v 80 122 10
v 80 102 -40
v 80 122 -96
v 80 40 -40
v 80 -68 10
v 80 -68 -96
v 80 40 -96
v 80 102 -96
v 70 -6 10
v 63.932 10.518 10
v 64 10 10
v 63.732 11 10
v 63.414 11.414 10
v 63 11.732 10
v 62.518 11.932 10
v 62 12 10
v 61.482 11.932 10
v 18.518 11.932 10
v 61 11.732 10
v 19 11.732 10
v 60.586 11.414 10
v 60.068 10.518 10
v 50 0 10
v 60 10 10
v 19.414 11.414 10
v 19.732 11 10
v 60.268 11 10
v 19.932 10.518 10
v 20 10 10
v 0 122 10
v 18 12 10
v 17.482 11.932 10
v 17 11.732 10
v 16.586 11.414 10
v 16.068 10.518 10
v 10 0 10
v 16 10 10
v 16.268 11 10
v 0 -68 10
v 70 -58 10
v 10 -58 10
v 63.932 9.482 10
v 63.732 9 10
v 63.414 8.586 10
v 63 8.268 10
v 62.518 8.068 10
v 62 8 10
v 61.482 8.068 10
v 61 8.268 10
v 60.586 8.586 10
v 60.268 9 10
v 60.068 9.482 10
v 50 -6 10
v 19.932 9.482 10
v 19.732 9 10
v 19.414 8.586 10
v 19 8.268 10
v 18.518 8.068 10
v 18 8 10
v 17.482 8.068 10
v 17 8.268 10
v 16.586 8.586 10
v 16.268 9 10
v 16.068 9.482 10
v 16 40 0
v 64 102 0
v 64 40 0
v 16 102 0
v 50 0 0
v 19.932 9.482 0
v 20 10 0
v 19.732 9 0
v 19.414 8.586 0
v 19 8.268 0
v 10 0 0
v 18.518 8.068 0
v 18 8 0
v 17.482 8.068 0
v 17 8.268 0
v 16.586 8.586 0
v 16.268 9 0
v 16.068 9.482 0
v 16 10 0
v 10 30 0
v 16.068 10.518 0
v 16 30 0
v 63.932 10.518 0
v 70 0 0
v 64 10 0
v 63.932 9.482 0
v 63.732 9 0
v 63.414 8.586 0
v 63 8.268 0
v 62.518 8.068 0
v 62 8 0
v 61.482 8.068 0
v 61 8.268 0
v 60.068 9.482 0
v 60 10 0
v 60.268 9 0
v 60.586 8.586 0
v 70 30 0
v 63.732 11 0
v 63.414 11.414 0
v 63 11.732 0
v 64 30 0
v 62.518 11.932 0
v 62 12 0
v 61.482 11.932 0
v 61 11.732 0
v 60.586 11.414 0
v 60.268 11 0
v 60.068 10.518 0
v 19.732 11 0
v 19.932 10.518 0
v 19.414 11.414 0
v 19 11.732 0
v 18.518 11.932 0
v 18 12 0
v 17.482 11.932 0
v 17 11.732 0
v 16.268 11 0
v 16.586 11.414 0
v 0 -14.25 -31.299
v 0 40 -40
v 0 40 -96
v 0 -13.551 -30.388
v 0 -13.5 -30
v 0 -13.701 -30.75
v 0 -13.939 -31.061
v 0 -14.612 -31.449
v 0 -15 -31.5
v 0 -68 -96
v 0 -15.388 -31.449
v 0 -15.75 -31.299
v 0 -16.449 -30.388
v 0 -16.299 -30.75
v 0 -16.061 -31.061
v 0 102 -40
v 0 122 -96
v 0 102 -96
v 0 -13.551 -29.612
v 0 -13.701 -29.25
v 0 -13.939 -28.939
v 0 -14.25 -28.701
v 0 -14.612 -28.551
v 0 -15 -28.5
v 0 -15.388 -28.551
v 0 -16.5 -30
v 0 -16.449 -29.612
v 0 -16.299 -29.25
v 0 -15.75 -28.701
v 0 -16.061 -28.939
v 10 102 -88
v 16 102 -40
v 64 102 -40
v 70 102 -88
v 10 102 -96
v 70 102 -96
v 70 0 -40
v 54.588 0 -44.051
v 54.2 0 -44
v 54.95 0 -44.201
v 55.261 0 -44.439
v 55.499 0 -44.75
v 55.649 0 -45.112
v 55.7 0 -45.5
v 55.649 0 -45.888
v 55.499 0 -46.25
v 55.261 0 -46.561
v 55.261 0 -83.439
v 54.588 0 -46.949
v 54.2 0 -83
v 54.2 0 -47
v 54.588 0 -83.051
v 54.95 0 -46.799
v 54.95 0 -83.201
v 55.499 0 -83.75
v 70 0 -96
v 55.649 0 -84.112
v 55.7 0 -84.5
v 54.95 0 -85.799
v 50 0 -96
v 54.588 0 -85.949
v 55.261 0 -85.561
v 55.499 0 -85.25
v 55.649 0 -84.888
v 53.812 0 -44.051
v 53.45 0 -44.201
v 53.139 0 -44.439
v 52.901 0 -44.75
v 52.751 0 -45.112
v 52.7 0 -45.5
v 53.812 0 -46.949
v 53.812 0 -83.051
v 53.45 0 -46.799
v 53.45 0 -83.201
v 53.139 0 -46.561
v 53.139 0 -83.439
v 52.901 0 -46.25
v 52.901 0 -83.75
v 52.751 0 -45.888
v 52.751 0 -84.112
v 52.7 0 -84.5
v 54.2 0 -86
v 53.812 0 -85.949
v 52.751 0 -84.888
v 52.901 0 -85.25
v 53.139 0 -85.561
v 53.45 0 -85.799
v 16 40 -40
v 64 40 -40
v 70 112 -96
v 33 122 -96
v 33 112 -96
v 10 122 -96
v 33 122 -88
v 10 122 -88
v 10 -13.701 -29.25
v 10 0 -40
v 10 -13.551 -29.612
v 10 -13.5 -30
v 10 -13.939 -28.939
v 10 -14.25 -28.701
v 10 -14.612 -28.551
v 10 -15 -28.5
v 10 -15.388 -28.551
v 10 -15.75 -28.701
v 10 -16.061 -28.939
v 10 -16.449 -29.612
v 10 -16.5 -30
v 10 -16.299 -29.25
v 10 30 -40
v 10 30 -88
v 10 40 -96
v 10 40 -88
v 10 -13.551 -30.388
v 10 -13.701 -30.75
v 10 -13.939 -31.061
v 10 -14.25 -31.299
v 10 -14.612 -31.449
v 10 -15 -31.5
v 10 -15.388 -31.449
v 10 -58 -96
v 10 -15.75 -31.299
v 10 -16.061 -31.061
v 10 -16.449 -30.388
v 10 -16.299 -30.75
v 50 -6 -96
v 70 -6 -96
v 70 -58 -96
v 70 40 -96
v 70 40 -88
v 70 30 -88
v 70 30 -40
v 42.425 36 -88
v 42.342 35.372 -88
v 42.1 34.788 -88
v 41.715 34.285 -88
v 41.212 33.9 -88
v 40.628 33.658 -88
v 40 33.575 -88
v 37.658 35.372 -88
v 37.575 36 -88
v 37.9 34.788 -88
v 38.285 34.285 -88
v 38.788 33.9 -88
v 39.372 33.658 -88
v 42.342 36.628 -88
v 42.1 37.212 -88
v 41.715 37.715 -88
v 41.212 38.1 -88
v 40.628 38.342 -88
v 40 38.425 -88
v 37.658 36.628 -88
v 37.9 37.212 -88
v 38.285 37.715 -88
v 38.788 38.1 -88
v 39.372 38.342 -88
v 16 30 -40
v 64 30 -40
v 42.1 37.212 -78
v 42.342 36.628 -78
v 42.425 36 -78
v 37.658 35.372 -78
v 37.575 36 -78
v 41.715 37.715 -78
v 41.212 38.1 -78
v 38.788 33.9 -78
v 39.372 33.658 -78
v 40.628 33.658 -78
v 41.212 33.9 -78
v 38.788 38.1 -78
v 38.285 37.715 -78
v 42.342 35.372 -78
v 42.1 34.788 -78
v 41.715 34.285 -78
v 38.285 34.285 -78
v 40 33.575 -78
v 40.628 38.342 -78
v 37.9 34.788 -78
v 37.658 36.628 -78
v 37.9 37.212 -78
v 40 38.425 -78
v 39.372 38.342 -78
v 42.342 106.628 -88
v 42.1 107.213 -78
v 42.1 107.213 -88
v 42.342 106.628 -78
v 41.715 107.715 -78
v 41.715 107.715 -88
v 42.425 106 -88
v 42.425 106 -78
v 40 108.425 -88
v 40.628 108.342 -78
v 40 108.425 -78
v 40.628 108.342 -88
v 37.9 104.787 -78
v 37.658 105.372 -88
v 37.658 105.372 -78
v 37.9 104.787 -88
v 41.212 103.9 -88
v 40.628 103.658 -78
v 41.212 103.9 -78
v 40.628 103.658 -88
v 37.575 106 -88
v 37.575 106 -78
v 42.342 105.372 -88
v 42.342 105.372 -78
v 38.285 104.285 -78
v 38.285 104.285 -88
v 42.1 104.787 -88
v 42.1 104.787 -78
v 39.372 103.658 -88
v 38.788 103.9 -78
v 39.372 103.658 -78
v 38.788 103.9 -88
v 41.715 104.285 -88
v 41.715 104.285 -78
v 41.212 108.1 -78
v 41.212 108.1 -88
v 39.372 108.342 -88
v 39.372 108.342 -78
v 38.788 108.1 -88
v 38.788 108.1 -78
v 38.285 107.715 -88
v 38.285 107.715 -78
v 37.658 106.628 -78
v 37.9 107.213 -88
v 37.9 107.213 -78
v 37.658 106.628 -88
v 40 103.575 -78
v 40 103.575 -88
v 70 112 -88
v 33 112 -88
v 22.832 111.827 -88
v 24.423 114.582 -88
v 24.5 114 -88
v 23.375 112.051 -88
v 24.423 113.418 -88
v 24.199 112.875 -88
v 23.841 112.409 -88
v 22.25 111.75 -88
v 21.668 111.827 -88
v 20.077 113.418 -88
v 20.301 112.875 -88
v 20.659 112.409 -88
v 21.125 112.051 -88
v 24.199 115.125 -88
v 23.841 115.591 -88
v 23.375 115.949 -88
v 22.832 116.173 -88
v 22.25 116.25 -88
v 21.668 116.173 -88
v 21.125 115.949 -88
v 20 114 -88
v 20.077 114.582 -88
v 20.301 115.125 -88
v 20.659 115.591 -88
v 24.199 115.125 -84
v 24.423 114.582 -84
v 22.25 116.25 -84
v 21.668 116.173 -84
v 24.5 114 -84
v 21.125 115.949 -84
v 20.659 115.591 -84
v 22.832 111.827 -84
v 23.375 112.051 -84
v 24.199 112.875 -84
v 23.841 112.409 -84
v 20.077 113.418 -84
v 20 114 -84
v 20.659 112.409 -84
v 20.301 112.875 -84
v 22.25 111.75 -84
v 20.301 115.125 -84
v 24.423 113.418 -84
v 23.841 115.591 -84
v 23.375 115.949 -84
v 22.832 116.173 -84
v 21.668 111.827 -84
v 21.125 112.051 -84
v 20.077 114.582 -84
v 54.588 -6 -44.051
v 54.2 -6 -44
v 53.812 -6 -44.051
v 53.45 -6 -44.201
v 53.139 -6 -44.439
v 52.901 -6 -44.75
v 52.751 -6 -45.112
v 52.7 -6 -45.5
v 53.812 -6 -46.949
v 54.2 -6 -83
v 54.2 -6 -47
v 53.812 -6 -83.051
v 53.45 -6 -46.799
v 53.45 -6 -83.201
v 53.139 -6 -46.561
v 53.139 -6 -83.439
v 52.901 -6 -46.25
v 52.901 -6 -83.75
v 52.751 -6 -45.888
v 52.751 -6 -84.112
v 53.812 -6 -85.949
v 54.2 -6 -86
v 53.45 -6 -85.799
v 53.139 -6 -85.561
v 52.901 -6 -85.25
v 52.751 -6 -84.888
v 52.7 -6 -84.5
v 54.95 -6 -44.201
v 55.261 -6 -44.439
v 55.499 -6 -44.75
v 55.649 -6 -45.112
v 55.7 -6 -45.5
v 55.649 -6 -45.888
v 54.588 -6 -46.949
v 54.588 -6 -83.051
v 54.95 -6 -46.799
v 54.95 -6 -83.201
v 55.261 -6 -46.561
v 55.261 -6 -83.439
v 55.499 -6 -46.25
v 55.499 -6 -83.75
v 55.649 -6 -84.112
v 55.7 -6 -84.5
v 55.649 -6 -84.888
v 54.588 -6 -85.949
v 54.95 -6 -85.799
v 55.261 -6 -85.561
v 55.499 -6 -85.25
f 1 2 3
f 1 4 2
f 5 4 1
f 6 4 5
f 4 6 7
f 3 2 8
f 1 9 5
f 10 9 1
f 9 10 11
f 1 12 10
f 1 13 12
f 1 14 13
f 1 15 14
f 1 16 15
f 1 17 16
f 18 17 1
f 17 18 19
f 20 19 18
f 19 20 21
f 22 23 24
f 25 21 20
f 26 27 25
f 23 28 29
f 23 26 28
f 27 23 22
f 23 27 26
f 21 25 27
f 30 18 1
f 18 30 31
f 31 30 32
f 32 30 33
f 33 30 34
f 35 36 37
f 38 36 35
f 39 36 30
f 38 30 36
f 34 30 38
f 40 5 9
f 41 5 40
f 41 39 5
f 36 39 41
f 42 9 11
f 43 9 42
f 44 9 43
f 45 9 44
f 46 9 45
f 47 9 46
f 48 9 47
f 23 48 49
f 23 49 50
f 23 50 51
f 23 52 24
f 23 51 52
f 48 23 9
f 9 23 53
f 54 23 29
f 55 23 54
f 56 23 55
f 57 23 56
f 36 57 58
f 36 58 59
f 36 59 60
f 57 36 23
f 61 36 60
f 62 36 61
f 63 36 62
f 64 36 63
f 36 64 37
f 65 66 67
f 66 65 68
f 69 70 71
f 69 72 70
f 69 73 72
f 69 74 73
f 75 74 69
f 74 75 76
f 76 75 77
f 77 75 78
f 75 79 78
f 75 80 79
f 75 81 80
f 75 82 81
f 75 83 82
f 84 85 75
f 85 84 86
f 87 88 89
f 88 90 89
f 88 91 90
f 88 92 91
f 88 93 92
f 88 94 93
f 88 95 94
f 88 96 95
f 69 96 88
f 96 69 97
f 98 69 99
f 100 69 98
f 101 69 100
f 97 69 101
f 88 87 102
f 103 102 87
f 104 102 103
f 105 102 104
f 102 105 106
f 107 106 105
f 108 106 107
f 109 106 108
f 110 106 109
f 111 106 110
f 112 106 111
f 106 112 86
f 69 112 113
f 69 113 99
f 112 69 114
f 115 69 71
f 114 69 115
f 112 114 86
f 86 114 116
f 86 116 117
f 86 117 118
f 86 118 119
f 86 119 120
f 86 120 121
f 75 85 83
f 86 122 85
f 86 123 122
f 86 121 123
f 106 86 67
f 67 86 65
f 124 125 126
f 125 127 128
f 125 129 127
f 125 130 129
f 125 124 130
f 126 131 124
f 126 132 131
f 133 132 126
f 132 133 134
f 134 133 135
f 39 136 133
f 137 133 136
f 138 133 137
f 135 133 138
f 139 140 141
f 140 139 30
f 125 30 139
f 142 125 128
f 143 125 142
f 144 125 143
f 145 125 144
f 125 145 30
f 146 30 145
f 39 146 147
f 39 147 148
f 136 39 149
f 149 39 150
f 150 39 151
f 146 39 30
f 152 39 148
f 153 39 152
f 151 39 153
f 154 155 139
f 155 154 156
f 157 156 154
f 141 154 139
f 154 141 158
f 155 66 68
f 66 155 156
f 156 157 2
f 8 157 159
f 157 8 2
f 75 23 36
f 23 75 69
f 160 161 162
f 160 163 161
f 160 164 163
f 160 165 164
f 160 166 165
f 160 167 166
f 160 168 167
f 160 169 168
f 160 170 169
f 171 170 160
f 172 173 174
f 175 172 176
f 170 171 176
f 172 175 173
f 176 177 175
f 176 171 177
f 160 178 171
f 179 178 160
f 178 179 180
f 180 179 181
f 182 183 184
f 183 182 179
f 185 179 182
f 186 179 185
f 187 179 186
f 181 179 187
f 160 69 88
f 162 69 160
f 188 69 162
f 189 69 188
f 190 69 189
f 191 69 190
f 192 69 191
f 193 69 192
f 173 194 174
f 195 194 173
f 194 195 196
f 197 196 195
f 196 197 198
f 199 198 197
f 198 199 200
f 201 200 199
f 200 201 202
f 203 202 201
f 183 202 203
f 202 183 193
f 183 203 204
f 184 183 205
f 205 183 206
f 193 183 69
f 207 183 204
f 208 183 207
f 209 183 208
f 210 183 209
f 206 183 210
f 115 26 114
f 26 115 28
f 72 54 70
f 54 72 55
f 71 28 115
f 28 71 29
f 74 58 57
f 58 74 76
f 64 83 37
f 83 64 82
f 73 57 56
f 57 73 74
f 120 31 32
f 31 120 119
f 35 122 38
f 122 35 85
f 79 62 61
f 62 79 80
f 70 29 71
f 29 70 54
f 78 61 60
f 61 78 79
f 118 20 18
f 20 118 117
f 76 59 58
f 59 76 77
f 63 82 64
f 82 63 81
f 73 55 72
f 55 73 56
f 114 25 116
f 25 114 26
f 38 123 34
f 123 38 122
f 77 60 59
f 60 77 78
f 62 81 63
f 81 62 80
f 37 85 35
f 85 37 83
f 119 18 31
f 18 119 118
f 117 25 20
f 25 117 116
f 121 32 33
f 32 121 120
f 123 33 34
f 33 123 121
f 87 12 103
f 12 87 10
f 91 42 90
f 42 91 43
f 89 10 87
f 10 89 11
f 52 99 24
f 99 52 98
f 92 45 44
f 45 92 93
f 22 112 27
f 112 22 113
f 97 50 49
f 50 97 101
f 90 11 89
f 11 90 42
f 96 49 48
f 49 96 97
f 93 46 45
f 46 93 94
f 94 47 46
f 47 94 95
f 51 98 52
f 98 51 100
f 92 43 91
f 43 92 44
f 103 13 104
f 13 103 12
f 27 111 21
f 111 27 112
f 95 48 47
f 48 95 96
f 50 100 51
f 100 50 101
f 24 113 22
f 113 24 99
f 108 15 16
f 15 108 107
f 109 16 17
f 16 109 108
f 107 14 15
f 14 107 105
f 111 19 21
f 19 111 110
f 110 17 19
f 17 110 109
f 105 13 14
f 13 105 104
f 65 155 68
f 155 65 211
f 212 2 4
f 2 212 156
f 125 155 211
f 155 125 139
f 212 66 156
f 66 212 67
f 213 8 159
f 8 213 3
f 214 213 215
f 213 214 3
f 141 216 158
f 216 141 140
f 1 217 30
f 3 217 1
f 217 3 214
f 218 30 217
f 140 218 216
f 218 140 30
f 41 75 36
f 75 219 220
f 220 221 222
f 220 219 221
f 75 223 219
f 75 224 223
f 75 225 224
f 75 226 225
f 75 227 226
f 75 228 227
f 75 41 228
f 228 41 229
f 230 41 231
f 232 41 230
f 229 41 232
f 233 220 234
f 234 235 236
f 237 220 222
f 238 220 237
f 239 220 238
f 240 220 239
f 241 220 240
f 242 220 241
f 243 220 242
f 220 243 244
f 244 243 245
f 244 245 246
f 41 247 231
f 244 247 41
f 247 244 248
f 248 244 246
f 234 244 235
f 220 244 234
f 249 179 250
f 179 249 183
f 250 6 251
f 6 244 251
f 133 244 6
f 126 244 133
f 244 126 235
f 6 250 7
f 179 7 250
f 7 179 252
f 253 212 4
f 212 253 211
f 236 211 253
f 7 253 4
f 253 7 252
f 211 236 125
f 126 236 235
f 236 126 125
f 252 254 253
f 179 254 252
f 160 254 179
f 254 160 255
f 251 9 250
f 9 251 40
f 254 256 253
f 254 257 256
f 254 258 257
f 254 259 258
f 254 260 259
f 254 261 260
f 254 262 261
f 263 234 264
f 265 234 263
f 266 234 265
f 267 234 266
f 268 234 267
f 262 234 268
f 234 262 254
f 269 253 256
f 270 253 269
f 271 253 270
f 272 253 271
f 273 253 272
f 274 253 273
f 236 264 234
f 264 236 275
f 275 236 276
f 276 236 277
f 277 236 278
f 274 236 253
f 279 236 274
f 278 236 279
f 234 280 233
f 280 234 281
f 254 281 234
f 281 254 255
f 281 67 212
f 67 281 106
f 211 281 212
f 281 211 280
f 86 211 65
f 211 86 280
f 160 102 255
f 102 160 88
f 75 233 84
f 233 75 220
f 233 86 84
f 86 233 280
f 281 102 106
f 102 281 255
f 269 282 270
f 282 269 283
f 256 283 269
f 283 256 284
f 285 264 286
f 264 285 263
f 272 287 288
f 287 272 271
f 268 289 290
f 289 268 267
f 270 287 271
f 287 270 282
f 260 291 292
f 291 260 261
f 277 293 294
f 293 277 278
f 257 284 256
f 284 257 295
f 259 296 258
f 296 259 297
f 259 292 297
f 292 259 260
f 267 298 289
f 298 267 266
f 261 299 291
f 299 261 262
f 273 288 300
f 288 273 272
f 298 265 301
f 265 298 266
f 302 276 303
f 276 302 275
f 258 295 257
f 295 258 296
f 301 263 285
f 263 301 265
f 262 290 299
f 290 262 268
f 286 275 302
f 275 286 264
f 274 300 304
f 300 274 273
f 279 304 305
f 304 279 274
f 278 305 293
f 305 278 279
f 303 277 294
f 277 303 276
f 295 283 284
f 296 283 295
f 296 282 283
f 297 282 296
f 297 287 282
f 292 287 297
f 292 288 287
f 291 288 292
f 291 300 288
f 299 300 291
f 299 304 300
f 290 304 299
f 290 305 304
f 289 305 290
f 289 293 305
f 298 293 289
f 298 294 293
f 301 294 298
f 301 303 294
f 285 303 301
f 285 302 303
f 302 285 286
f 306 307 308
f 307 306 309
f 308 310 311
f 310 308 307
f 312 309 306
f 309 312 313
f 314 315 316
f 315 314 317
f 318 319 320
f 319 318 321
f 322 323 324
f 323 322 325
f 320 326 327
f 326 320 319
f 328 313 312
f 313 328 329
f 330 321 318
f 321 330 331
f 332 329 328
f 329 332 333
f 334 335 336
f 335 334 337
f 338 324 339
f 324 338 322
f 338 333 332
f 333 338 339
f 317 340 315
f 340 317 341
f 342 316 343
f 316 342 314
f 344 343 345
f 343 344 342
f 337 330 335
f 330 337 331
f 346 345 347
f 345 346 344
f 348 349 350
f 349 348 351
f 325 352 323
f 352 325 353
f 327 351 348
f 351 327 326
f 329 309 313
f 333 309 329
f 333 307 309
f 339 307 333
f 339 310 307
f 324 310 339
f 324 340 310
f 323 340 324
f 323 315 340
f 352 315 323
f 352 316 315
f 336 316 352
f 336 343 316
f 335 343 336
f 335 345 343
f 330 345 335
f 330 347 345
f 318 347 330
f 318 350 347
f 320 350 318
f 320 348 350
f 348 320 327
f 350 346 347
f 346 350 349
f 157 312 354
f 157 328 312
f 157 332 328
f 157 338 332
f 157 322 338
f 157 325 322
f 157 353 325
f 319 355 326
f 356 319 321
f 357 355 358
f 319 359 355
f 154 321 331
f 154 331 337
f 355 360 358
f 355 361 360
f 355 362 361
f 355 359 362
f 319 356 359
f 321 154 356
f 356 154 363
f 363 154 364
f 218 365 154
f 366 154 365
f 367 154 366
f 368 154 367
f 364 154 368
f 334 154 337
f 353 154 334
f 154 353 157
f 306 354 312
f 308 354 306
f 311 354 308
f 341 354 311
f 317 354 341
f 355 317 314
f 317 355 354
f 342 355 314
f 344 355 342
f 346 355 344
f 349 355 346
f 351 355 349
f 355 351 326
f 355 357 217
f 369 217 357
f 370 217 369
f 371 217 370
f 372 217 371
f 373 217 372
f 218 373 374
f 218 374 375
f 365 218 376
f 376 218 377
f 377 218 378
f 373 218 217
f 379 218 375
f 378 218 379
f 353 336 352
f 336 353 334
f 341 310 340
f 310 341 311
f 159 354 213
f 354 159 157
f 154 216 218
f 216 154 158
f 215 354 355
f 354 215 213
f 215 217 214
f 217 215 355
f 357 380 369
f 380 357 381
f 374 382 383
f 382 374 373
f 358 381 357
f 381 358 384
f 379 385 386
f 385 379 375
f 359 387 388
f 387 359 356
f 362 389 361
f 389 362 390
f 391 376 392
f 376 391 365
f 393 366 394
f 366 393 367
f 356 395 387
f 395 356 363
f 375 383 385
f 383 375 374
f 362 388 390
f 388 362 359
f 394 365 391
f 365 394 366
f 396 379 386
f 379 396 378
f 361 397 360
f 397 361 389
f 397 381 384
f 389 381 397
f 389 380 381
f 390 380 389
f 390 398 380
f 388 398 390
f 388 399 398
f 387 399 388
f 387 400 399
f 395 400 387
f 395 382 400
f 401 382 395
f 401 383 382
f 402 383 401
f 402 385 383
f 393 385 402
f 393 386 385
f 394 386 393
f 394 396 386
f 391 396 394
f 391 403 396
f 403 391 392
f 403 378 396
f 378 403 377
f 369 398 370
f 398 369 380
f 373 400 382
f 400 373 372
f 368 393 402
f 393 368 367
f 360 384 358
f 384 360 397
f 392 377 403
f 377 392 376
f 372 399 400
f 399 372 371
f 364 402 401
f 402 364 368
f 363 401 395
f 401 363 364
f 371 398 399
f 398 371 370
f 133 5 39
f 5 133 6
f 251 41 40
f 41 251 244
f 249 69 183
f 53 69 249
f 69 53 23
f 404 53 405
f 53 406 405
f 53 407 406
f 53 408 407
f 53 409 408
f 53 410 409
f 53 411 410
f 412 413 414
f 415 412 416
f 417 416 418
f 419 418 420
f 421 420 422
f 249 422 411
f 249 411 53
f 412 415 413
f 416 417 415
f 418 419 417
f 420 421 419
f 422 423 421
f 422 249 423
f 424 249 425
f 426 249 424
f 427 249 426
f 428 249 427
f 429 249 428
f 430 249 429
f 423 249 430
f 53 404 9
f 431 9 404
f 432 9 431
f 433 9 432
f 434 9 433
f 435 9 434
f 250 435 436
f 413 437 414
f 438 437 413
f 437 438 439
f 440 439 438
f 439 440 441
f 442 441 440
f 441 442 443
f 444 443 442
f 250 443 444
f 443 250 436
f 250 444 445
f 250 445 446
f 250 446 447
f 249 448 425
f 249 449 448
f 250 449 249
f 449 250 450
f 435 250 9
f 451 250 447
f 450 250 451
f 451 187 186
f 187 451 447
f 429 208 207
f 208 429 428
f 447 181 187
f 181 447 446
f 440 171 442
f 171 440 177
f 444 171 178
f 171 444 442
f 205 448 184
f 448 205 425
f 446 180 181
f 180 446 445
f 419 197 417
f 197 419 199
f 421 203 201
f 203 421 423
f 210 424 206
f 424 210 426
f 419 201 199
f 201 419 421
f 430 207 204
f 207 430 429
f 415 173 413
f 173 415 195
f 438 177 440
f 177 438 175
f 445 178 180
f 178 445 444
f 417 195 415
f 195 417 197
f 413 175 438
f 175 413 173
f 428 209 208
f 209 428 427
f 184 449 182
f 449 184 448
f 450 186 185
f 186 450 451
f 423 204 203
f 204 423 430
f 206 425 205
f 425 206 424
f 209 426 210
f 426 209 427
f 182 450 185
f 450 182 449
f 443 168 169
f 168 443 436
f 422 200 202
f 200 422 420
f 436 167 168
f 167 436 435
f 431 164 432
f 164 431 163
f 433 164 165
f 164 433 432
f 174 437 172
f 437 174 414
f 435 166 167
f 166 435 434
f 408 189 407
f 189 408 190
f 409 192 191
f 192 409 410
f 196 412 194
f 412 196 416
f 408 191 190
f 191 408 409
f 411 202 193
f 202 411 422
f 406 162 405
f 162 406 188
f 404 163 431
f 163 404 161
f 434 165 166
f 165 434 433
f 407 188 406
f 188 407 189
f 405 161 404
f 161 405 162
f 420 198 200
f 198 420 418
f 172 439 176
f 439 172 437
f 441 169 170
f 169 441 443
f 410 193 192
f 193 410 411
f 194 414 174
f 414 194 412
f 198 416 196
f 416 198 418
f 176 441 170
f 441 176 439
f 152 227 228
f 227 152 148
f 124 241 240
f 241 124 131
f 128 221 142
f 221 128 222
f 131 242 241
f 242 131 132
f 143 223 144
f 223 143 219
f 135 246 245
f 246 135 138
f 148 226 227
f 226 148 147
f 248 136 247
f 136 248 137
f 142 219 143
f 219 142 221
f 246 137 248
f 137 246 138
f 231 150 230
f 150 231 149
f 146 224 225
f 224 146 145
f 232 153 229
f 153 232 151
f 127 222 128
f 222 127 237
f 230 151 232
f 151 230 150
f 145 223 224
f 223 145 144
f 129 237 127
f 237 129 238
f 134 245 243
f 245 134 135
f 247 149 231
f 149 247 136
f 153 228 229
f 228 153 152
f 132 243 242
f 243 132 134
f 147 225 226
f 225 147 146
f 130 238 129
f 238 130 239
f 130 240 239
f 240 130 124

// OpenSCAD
module place_mount_hole(diameter) {
    linear_extrude(10, convexity=6) {
        $fn = 24;
        circle(r=diameter/2);
    }
}

module box(size, wallWidth) {
    difference() {
        cube(size);
        translate( [wallWidth, wallWidth, wallWidth] )
        cube( [size[0] - 2*wallWidth, size[1] - 2*wallWidth, size[2] - 2*wallWidth] );
    }
}



difference() {
    union() {
        //Relay+Iron Mounting
        difference() {
        
            union() {
                
                //Top piece
                difference() {
                    cube([80,102,10]);
                    translate( [(80-44) / 2, 10, 0] )
                    place_mount_hole(4);
                    translate( [(80-44) / 2 + 44, 10, 0] )
                    place_mount_hole(4);
                }
                
                //Side walls
                translate( [0, 0, -40] )
                cube( [ (80-48) / 2, 102, 40] );
                translate( [ (80-48) / 2 + 48, 0, -40] )
                cube( [ (80-48) / 2, 102, 40] );
                translate( [0, 102, -40-48-8] )
                cube( [80, 20, 50+48+8] );
                translate( [0, 0, -88-8] )
                cube( [10, 40, 48+8] );
                translate( [70, 0, -88-8] )
                cube( [10, 40, 48+8] );
                
                //Inside wall
                translate( [ 0, 30, -40-48] )
                cube( [80, 10, 40+48] );
                

            }
            
            //Access to relay
            translate( [(80-48) / 2, 30, -40] )
            cube( [48, 10, 40] );
            
            //Thinner walls so mount holes can be reached
            translate( [10, 0, -40] )
            cube( [ 80-20, 30, 40] );
            
            //Relay mount holes
            translate( [40, 36, -88] )
            place_mount_hole(4.85);
            translate( [40, 36+70, -88] )
            place_mount_hole(4.85);
            translate( [10, 102, -88-8] )
            cube( [60, 10, 8] );
            
            //AC Strain Relief
            translate( [10, 102, -88-8] )
            cube( [23, 20, 8] );
            translate( [10+12.25, 102+12, -88-8+2] )
            place_mount_hole(4.5);
        }


        //Front housing
        
        translate( [0, -68, -88-8] )
        cube( [10, 68, 88+8+10] );
        
        translate( [70, -68, -88-8] )
        cube( [10, 68, 88+8+10] );
        
        translate( [0, -68, -88-8] )
        cube( [80, 10, 88+8+10] );
        
        translate( [50, -68+52+10, -88-8] )
        cube( [20, 6, 88+8+10] );

        
        
    }
    
    //5V Supply mounting
    translate( [ 80-10-15.8, -68+52+10, -88-8+11.5] )
    rotate( [-90, 0, 0] )
    place_mount_hole(3);
    translate( [ 80-10-15.8, -68+52+10, -88-8+11.5+39] )
    rotate( [-90, 0, 0] )
    place_mount_hole(3);
    
    
    //Thermistor wire exit
    translate( [ 0, -15, -30] )
    rotate( [0, 90, 0] )
    place_mount_hole(3);
}
